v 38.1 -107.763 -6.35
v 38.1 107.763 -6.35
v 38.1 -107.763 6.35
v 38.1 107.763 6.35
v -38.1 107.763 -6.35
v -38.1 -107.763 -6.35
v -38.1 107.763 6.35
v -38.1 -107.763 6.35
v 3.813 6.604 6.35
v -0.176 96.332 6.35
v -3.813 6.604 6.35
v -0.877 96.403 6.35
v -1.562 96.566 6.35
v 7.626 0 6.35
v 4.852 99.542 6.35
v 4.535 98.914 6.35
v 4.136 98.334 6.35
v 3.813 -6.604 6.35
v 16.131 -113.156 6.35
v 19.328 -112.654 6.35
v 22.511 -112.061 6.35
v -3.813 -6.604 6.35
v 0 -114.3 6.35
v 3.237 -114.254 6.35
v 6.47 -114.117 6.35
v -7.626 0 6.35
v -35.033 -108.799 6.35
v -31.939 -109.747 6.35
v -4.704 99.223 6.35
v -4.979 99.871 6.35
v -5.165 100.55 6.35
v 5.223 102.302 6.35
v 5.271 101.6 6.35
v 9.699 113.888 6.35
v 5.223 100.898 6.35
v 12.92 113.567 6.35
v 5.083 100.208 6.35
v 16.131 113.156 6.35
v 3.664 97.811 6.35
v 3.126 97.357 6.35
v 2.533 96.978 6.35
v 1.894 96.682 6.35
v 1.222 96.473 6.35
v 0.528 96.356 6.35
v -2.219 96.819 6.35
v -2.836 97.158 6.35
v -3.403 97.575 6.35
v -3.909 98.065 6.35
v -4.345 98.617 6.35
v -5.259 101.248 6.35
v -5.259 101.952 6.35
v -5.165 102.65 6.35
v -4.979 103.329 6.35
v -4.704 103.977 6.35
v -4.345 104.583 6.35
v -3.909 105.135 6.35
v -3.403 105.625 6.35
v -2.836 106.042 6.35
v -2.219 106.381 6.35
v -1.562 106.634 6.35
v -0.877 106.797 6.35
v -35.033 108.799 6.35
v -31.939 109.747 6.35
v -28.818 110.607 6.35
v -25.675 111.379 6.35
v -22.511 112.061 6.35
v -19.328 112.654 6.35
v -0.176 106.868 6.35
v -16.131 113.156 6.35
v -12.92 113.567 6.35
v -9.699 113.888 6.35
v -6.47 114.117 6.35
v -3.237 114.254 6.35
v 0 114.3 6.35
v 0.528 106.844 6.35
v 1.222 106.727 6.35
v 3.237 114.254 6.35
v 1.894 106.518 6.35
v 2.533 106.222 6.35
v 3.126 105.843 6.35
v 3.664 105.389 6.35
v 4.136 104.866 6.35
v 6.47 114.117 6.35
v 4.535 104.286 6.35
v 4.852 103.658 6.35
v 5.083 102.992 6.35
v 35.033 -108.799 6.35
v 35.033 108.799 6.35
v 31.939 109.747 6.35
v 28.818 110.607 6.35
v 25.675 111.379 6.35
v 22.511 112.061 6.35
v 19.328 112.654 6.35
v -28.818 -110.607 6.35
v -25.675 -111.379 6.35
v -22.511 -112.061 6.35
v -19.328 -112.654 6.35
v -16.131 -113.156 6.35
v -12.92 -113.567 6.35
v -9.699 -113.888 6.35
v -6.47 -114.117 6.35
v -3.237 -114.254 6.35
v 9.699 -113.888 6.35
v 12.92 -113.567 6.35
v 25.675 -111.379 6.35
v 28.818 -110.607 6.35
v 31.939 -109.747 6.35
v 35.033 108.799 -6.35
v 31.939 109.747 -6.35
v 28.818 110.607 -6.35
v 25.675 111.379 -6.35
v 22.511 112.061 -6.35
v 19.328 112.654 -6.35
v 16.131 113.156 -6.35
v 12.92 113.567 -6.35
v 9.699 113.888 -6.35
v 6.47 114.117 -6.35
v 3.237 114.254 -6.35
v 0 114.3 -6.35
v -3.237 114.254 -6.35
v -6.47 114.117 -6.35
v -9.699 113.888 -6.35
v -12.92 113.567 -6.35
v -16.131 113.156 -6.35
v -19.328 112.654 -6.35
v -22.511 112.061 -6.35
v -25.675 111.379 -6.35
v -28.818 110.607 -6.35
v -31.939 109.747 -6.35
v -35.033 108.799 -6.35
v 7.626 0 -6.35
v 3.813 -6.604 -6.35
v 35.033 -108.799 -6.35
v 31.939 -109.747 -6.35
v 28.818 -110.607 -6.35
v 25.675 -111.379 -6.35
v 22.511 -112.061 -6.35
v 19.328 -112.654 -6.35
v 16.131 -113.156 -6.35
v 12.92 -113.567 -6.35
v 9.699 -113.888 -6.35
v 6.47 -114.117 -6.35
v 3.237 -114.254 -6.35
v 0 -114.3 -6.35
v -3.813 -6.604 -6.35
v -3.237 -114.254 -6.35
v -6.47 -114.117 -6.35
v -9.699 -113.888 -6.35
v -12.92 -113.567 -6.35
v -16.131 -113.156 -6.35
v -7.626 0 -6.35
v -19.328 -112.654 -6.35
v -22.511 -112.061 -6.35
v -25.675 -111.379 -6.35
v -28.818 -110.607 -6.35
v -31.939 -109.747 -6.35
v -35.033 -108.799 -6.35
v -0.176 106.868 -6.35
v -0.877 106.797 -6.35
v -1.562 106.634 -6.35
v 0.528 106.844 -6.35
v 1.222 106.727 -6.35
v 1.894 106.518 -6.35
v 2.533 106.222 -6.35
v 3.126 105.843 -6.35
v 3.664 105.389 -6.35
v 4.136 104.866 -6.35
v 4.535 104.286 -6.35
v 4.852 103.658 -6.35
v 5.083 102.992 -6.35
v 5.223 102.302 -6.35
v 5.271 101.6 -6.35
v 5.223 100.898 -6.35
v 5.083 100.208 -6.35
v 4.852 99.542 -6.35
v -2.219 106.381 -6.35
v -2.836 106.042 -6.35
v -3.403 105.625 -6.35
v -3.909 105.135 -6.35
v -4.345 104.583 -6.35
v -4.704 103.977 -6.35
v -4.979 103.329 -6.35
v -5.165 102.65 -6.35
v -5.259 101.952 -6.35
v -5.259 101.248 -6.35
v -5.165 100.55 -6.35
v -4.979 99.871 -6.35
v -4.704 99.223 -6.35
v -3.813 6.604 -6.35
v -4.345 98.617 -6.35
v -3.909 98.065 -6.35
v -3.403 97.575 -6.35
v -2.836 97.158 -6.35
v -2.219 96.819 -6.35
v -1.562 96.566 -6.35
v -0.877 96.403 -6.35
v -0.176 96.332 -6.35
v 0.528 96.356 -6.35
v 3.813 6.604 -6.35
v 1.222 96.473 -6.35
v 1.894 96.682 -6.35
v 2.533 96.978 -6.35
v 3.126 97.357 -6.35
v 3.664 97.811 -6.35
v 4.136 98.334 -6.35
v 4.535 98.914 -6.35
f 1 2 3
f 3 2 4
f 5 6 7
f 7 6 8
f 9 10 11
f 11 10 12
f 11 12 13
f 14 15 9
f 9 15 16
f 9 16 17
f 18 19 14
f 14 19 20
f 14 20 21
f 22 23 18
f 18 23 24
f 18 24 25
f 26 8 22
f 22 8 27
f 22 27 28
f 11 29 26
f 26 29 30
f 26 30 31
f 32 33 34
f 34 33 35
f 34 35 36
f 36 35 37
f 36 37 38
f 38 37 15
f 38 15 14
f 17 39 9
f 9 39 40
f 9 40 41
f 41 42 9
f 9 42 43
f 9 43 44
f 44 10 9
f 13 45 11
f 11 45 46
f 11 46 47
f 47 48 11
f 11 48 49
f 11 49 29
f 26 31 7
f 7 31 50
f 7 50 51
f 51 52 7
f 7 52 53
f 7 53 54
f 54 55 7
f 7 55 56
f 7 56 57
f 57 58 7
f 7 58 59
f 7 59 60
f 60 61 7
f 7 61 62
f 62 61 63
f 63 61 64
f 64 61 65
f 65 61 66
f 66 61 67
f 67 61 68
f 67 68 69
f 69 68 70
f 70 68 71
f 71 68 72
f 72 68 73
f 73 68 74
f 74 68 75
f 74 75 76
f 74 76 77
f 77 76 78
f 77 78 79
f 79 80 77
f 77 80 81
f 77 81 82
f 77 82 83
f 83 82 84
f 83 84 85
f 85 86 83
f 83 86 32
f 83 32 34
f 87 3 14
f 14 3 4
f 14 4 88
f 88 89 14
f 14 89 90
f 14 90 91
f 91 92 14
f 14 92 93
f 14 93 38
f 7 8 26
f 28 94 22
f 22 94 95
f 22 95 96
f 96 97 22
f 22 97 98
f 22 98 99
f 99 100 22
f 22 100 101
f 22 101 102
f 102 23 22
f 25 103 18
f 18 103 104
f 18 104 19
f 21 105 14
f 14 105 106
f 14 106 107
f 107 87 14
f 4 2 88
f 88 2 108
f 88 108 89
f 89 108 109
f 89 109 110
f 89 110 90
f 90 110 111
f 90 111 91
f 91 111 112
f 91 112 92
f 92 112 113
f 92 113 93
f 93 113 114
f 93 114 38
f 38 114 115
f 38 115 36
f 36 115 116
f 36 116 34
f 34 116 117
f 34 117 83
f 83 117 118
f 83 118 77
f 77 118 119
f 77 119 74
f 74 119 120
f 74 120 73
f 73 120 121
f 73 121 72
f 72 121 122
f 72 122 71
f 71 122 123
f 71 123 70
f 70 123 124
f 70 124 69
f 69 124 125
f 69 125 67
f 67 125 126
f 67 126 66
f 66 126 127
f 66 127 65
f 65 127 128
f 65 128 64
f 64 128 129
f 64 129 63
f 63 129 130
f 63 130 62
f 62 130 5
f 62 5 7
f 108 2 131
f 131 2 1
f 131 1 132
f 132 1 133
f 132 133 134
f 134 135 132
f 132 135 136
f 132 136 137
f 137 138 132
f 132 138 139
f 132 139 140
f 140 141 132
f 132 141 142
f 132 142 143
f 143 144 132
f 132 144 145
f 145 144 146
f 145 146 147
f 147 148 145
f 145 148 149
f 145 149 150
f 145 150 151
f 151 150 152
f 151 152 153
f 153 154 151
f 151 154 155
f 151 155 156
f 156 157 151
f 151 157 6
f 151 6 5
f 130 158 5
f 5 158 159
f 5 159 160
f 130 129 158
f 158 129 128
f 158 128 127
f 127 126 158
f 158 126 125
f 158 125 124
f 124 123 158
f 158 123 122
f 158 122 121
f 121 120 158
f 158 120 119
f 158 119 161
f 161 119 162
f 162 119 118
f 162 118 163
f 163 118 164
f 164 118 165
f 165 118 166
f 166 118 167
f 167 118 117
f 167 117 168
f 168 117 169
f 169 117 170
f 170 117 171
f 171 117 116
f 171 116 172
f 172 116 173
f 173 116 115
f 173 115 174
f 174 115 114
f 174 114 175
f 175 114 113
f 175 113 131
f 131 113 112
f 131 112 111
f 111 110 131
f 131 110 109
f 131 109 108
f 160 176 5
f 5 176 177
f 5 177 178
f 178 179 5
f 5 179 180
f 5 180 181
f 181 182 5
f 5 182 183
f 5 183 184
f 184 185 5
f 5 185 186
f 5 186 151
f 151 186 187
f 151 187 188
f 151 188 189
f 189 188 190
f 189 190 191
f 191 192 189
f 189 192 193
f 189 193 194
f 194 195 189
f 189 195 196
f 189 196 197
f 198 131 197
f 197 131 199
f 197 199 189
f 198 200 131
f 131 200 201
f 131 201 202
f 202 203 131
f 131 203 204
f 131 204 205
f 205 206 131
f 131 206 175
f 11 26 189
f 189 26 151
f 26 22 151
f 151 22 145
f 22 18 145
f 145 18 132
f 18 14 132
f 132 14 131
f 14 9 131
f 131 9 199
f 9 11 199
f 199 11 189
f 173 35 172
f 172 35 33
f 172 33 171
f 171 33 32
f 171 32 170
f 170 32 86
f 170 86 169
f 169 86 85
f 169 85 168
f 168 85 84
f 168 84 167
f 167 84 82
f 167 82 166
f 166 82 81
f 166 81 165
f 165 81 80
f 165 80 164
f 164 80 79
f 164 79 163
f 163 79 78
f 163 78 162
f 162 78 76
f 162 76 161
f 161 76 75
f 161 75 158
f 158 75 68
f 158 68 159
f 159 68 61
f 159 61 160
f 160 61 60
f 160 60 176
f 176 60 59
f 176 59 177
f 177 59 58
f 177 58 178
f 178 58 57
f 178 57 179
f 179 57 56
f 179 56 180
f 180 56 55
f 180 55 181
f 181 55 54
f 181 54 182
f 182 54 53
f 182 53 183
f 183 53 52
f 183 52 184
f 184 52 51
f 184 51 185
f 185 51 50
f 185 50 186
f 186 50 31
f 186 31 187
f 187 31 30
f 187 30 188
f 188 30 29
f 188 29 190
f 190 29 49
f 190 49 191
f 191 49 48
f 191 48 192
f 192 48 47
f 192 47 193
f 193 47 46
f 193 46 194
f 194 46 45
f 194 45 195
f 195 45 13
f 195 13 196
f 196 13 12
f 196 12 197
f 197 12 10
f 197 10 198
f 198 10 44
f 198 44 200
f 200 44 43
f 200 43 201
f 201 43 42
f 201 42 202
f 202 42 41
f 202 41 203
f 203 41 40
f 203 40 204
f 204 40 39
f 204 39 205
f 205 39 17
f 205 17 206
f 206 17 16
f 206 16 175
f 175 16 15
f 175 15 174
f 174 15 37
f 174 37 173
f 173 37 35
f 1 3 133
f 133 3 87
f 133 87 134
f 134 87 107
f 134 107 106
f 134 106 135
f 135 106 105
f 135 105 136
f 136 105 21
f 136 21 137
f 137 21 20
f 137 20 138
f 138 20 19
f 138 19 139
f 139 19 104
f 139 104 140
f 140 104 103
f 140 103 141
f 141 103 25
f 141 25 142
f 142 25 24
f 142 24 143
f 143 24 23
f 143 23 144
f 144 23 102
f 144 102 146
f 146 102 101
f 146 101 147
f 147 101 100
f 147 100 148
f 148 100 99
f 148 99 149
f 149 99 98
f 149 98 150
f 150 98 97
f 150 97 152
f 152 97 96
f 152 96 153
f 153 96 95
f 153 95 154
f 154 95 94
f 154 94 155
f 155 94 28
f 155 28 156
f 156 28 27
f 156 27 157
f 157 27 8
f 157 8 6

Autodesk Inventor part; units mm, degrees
ref_plane "YZ Plane" through (0, 0, 0) normal (1, 0, 0) x (0, 1, 0)
ref_plane "XZ Plane" through (0, 0, 0) normal (0, 1, 0) x (-1, 0, 0)
ref_plane "XY Plane" through (0, 0, 0) normal (0, 0, 1) x (1, 0, 0)
sketch "Sketch1" plane through (0, 0, 0) normal (0, 0, 1) x (1, 0, 0)
  circle A0 centre (0, 0) radius 114.3
  line L0 (7.6256, 0) -> (3.8128, -6.604)
  line L1 (3.8128, -6.604) -> (-3.8128, -6.604)
  line L2 (-3.8128, -6.604) -> (-7.6256, 0)
  line L3 (-7.6256, 0) -> (-3.8128, 6.604)
  line L4 (-3.8128, 6.604) -> (3.8128, 6.604)
  line L5 (3.8128, 6.604) -> (7.6256, 0)
  circle A1 centre (0, 101.6) radius 5.2705
  dimension "d0" = 228.6
  dimension "d1" = 13.208
  dimension "d2" = 10.541
  dimension "d5" = 101.6
extrude "Extrusion1" add sketch "Sketch1" along normal mid plane 12.7
sketch "Sketch4" plane through (0, 0, 6.35) normal (0, 0, 1) x (1, 0, 0)
  circle A0 centre (0, 0) radius 114.3 projected
  line L0 (-38.1, 107.7631) -> (-38.1, -107.7631)
  line L1 (38.1, 107.7631) -> (38.1, -107.7631)
  arc A1 (-38.1, 107.7631) -> (-38.1, -107.7631) centre (0, 0) ccw
  arc A2 (38.1, -107.7631) -> (38.1, 107.7631) centre (0, 0) ccw
  dimension "d18" = 38.1
  dimension "d19" = 38.1
extrude "Extrusion4" cut sketch "Sketch4" against normal through all contours A0 L1 | L0 A0
sketch "Sketch2" plane through (0, 0, 6.35) normal (0, 0, 1) x (1, 0, 0)
  circle A0 centre (-63.5, 0) radius 25.4
  circle A1 centre (-31.75, -54.9926) radius 25.4
  circle A2 centre (31.75, -54.9926) radius 25.4
  circle A3 centre (63.5, 0) radius 25.4
  circle A4 centre (31.75, 54.9926) radius 25.4
  circle A5 centre (-31.75, 54.9926) radius 25.4
  point P0 (0, 0)
  dimension "d6" = 50.8
  dimension "d7" = 63.5
  dimension "d10" = 360
properties part number "driveForPiston-8-inV03" material "PET Plastic"
